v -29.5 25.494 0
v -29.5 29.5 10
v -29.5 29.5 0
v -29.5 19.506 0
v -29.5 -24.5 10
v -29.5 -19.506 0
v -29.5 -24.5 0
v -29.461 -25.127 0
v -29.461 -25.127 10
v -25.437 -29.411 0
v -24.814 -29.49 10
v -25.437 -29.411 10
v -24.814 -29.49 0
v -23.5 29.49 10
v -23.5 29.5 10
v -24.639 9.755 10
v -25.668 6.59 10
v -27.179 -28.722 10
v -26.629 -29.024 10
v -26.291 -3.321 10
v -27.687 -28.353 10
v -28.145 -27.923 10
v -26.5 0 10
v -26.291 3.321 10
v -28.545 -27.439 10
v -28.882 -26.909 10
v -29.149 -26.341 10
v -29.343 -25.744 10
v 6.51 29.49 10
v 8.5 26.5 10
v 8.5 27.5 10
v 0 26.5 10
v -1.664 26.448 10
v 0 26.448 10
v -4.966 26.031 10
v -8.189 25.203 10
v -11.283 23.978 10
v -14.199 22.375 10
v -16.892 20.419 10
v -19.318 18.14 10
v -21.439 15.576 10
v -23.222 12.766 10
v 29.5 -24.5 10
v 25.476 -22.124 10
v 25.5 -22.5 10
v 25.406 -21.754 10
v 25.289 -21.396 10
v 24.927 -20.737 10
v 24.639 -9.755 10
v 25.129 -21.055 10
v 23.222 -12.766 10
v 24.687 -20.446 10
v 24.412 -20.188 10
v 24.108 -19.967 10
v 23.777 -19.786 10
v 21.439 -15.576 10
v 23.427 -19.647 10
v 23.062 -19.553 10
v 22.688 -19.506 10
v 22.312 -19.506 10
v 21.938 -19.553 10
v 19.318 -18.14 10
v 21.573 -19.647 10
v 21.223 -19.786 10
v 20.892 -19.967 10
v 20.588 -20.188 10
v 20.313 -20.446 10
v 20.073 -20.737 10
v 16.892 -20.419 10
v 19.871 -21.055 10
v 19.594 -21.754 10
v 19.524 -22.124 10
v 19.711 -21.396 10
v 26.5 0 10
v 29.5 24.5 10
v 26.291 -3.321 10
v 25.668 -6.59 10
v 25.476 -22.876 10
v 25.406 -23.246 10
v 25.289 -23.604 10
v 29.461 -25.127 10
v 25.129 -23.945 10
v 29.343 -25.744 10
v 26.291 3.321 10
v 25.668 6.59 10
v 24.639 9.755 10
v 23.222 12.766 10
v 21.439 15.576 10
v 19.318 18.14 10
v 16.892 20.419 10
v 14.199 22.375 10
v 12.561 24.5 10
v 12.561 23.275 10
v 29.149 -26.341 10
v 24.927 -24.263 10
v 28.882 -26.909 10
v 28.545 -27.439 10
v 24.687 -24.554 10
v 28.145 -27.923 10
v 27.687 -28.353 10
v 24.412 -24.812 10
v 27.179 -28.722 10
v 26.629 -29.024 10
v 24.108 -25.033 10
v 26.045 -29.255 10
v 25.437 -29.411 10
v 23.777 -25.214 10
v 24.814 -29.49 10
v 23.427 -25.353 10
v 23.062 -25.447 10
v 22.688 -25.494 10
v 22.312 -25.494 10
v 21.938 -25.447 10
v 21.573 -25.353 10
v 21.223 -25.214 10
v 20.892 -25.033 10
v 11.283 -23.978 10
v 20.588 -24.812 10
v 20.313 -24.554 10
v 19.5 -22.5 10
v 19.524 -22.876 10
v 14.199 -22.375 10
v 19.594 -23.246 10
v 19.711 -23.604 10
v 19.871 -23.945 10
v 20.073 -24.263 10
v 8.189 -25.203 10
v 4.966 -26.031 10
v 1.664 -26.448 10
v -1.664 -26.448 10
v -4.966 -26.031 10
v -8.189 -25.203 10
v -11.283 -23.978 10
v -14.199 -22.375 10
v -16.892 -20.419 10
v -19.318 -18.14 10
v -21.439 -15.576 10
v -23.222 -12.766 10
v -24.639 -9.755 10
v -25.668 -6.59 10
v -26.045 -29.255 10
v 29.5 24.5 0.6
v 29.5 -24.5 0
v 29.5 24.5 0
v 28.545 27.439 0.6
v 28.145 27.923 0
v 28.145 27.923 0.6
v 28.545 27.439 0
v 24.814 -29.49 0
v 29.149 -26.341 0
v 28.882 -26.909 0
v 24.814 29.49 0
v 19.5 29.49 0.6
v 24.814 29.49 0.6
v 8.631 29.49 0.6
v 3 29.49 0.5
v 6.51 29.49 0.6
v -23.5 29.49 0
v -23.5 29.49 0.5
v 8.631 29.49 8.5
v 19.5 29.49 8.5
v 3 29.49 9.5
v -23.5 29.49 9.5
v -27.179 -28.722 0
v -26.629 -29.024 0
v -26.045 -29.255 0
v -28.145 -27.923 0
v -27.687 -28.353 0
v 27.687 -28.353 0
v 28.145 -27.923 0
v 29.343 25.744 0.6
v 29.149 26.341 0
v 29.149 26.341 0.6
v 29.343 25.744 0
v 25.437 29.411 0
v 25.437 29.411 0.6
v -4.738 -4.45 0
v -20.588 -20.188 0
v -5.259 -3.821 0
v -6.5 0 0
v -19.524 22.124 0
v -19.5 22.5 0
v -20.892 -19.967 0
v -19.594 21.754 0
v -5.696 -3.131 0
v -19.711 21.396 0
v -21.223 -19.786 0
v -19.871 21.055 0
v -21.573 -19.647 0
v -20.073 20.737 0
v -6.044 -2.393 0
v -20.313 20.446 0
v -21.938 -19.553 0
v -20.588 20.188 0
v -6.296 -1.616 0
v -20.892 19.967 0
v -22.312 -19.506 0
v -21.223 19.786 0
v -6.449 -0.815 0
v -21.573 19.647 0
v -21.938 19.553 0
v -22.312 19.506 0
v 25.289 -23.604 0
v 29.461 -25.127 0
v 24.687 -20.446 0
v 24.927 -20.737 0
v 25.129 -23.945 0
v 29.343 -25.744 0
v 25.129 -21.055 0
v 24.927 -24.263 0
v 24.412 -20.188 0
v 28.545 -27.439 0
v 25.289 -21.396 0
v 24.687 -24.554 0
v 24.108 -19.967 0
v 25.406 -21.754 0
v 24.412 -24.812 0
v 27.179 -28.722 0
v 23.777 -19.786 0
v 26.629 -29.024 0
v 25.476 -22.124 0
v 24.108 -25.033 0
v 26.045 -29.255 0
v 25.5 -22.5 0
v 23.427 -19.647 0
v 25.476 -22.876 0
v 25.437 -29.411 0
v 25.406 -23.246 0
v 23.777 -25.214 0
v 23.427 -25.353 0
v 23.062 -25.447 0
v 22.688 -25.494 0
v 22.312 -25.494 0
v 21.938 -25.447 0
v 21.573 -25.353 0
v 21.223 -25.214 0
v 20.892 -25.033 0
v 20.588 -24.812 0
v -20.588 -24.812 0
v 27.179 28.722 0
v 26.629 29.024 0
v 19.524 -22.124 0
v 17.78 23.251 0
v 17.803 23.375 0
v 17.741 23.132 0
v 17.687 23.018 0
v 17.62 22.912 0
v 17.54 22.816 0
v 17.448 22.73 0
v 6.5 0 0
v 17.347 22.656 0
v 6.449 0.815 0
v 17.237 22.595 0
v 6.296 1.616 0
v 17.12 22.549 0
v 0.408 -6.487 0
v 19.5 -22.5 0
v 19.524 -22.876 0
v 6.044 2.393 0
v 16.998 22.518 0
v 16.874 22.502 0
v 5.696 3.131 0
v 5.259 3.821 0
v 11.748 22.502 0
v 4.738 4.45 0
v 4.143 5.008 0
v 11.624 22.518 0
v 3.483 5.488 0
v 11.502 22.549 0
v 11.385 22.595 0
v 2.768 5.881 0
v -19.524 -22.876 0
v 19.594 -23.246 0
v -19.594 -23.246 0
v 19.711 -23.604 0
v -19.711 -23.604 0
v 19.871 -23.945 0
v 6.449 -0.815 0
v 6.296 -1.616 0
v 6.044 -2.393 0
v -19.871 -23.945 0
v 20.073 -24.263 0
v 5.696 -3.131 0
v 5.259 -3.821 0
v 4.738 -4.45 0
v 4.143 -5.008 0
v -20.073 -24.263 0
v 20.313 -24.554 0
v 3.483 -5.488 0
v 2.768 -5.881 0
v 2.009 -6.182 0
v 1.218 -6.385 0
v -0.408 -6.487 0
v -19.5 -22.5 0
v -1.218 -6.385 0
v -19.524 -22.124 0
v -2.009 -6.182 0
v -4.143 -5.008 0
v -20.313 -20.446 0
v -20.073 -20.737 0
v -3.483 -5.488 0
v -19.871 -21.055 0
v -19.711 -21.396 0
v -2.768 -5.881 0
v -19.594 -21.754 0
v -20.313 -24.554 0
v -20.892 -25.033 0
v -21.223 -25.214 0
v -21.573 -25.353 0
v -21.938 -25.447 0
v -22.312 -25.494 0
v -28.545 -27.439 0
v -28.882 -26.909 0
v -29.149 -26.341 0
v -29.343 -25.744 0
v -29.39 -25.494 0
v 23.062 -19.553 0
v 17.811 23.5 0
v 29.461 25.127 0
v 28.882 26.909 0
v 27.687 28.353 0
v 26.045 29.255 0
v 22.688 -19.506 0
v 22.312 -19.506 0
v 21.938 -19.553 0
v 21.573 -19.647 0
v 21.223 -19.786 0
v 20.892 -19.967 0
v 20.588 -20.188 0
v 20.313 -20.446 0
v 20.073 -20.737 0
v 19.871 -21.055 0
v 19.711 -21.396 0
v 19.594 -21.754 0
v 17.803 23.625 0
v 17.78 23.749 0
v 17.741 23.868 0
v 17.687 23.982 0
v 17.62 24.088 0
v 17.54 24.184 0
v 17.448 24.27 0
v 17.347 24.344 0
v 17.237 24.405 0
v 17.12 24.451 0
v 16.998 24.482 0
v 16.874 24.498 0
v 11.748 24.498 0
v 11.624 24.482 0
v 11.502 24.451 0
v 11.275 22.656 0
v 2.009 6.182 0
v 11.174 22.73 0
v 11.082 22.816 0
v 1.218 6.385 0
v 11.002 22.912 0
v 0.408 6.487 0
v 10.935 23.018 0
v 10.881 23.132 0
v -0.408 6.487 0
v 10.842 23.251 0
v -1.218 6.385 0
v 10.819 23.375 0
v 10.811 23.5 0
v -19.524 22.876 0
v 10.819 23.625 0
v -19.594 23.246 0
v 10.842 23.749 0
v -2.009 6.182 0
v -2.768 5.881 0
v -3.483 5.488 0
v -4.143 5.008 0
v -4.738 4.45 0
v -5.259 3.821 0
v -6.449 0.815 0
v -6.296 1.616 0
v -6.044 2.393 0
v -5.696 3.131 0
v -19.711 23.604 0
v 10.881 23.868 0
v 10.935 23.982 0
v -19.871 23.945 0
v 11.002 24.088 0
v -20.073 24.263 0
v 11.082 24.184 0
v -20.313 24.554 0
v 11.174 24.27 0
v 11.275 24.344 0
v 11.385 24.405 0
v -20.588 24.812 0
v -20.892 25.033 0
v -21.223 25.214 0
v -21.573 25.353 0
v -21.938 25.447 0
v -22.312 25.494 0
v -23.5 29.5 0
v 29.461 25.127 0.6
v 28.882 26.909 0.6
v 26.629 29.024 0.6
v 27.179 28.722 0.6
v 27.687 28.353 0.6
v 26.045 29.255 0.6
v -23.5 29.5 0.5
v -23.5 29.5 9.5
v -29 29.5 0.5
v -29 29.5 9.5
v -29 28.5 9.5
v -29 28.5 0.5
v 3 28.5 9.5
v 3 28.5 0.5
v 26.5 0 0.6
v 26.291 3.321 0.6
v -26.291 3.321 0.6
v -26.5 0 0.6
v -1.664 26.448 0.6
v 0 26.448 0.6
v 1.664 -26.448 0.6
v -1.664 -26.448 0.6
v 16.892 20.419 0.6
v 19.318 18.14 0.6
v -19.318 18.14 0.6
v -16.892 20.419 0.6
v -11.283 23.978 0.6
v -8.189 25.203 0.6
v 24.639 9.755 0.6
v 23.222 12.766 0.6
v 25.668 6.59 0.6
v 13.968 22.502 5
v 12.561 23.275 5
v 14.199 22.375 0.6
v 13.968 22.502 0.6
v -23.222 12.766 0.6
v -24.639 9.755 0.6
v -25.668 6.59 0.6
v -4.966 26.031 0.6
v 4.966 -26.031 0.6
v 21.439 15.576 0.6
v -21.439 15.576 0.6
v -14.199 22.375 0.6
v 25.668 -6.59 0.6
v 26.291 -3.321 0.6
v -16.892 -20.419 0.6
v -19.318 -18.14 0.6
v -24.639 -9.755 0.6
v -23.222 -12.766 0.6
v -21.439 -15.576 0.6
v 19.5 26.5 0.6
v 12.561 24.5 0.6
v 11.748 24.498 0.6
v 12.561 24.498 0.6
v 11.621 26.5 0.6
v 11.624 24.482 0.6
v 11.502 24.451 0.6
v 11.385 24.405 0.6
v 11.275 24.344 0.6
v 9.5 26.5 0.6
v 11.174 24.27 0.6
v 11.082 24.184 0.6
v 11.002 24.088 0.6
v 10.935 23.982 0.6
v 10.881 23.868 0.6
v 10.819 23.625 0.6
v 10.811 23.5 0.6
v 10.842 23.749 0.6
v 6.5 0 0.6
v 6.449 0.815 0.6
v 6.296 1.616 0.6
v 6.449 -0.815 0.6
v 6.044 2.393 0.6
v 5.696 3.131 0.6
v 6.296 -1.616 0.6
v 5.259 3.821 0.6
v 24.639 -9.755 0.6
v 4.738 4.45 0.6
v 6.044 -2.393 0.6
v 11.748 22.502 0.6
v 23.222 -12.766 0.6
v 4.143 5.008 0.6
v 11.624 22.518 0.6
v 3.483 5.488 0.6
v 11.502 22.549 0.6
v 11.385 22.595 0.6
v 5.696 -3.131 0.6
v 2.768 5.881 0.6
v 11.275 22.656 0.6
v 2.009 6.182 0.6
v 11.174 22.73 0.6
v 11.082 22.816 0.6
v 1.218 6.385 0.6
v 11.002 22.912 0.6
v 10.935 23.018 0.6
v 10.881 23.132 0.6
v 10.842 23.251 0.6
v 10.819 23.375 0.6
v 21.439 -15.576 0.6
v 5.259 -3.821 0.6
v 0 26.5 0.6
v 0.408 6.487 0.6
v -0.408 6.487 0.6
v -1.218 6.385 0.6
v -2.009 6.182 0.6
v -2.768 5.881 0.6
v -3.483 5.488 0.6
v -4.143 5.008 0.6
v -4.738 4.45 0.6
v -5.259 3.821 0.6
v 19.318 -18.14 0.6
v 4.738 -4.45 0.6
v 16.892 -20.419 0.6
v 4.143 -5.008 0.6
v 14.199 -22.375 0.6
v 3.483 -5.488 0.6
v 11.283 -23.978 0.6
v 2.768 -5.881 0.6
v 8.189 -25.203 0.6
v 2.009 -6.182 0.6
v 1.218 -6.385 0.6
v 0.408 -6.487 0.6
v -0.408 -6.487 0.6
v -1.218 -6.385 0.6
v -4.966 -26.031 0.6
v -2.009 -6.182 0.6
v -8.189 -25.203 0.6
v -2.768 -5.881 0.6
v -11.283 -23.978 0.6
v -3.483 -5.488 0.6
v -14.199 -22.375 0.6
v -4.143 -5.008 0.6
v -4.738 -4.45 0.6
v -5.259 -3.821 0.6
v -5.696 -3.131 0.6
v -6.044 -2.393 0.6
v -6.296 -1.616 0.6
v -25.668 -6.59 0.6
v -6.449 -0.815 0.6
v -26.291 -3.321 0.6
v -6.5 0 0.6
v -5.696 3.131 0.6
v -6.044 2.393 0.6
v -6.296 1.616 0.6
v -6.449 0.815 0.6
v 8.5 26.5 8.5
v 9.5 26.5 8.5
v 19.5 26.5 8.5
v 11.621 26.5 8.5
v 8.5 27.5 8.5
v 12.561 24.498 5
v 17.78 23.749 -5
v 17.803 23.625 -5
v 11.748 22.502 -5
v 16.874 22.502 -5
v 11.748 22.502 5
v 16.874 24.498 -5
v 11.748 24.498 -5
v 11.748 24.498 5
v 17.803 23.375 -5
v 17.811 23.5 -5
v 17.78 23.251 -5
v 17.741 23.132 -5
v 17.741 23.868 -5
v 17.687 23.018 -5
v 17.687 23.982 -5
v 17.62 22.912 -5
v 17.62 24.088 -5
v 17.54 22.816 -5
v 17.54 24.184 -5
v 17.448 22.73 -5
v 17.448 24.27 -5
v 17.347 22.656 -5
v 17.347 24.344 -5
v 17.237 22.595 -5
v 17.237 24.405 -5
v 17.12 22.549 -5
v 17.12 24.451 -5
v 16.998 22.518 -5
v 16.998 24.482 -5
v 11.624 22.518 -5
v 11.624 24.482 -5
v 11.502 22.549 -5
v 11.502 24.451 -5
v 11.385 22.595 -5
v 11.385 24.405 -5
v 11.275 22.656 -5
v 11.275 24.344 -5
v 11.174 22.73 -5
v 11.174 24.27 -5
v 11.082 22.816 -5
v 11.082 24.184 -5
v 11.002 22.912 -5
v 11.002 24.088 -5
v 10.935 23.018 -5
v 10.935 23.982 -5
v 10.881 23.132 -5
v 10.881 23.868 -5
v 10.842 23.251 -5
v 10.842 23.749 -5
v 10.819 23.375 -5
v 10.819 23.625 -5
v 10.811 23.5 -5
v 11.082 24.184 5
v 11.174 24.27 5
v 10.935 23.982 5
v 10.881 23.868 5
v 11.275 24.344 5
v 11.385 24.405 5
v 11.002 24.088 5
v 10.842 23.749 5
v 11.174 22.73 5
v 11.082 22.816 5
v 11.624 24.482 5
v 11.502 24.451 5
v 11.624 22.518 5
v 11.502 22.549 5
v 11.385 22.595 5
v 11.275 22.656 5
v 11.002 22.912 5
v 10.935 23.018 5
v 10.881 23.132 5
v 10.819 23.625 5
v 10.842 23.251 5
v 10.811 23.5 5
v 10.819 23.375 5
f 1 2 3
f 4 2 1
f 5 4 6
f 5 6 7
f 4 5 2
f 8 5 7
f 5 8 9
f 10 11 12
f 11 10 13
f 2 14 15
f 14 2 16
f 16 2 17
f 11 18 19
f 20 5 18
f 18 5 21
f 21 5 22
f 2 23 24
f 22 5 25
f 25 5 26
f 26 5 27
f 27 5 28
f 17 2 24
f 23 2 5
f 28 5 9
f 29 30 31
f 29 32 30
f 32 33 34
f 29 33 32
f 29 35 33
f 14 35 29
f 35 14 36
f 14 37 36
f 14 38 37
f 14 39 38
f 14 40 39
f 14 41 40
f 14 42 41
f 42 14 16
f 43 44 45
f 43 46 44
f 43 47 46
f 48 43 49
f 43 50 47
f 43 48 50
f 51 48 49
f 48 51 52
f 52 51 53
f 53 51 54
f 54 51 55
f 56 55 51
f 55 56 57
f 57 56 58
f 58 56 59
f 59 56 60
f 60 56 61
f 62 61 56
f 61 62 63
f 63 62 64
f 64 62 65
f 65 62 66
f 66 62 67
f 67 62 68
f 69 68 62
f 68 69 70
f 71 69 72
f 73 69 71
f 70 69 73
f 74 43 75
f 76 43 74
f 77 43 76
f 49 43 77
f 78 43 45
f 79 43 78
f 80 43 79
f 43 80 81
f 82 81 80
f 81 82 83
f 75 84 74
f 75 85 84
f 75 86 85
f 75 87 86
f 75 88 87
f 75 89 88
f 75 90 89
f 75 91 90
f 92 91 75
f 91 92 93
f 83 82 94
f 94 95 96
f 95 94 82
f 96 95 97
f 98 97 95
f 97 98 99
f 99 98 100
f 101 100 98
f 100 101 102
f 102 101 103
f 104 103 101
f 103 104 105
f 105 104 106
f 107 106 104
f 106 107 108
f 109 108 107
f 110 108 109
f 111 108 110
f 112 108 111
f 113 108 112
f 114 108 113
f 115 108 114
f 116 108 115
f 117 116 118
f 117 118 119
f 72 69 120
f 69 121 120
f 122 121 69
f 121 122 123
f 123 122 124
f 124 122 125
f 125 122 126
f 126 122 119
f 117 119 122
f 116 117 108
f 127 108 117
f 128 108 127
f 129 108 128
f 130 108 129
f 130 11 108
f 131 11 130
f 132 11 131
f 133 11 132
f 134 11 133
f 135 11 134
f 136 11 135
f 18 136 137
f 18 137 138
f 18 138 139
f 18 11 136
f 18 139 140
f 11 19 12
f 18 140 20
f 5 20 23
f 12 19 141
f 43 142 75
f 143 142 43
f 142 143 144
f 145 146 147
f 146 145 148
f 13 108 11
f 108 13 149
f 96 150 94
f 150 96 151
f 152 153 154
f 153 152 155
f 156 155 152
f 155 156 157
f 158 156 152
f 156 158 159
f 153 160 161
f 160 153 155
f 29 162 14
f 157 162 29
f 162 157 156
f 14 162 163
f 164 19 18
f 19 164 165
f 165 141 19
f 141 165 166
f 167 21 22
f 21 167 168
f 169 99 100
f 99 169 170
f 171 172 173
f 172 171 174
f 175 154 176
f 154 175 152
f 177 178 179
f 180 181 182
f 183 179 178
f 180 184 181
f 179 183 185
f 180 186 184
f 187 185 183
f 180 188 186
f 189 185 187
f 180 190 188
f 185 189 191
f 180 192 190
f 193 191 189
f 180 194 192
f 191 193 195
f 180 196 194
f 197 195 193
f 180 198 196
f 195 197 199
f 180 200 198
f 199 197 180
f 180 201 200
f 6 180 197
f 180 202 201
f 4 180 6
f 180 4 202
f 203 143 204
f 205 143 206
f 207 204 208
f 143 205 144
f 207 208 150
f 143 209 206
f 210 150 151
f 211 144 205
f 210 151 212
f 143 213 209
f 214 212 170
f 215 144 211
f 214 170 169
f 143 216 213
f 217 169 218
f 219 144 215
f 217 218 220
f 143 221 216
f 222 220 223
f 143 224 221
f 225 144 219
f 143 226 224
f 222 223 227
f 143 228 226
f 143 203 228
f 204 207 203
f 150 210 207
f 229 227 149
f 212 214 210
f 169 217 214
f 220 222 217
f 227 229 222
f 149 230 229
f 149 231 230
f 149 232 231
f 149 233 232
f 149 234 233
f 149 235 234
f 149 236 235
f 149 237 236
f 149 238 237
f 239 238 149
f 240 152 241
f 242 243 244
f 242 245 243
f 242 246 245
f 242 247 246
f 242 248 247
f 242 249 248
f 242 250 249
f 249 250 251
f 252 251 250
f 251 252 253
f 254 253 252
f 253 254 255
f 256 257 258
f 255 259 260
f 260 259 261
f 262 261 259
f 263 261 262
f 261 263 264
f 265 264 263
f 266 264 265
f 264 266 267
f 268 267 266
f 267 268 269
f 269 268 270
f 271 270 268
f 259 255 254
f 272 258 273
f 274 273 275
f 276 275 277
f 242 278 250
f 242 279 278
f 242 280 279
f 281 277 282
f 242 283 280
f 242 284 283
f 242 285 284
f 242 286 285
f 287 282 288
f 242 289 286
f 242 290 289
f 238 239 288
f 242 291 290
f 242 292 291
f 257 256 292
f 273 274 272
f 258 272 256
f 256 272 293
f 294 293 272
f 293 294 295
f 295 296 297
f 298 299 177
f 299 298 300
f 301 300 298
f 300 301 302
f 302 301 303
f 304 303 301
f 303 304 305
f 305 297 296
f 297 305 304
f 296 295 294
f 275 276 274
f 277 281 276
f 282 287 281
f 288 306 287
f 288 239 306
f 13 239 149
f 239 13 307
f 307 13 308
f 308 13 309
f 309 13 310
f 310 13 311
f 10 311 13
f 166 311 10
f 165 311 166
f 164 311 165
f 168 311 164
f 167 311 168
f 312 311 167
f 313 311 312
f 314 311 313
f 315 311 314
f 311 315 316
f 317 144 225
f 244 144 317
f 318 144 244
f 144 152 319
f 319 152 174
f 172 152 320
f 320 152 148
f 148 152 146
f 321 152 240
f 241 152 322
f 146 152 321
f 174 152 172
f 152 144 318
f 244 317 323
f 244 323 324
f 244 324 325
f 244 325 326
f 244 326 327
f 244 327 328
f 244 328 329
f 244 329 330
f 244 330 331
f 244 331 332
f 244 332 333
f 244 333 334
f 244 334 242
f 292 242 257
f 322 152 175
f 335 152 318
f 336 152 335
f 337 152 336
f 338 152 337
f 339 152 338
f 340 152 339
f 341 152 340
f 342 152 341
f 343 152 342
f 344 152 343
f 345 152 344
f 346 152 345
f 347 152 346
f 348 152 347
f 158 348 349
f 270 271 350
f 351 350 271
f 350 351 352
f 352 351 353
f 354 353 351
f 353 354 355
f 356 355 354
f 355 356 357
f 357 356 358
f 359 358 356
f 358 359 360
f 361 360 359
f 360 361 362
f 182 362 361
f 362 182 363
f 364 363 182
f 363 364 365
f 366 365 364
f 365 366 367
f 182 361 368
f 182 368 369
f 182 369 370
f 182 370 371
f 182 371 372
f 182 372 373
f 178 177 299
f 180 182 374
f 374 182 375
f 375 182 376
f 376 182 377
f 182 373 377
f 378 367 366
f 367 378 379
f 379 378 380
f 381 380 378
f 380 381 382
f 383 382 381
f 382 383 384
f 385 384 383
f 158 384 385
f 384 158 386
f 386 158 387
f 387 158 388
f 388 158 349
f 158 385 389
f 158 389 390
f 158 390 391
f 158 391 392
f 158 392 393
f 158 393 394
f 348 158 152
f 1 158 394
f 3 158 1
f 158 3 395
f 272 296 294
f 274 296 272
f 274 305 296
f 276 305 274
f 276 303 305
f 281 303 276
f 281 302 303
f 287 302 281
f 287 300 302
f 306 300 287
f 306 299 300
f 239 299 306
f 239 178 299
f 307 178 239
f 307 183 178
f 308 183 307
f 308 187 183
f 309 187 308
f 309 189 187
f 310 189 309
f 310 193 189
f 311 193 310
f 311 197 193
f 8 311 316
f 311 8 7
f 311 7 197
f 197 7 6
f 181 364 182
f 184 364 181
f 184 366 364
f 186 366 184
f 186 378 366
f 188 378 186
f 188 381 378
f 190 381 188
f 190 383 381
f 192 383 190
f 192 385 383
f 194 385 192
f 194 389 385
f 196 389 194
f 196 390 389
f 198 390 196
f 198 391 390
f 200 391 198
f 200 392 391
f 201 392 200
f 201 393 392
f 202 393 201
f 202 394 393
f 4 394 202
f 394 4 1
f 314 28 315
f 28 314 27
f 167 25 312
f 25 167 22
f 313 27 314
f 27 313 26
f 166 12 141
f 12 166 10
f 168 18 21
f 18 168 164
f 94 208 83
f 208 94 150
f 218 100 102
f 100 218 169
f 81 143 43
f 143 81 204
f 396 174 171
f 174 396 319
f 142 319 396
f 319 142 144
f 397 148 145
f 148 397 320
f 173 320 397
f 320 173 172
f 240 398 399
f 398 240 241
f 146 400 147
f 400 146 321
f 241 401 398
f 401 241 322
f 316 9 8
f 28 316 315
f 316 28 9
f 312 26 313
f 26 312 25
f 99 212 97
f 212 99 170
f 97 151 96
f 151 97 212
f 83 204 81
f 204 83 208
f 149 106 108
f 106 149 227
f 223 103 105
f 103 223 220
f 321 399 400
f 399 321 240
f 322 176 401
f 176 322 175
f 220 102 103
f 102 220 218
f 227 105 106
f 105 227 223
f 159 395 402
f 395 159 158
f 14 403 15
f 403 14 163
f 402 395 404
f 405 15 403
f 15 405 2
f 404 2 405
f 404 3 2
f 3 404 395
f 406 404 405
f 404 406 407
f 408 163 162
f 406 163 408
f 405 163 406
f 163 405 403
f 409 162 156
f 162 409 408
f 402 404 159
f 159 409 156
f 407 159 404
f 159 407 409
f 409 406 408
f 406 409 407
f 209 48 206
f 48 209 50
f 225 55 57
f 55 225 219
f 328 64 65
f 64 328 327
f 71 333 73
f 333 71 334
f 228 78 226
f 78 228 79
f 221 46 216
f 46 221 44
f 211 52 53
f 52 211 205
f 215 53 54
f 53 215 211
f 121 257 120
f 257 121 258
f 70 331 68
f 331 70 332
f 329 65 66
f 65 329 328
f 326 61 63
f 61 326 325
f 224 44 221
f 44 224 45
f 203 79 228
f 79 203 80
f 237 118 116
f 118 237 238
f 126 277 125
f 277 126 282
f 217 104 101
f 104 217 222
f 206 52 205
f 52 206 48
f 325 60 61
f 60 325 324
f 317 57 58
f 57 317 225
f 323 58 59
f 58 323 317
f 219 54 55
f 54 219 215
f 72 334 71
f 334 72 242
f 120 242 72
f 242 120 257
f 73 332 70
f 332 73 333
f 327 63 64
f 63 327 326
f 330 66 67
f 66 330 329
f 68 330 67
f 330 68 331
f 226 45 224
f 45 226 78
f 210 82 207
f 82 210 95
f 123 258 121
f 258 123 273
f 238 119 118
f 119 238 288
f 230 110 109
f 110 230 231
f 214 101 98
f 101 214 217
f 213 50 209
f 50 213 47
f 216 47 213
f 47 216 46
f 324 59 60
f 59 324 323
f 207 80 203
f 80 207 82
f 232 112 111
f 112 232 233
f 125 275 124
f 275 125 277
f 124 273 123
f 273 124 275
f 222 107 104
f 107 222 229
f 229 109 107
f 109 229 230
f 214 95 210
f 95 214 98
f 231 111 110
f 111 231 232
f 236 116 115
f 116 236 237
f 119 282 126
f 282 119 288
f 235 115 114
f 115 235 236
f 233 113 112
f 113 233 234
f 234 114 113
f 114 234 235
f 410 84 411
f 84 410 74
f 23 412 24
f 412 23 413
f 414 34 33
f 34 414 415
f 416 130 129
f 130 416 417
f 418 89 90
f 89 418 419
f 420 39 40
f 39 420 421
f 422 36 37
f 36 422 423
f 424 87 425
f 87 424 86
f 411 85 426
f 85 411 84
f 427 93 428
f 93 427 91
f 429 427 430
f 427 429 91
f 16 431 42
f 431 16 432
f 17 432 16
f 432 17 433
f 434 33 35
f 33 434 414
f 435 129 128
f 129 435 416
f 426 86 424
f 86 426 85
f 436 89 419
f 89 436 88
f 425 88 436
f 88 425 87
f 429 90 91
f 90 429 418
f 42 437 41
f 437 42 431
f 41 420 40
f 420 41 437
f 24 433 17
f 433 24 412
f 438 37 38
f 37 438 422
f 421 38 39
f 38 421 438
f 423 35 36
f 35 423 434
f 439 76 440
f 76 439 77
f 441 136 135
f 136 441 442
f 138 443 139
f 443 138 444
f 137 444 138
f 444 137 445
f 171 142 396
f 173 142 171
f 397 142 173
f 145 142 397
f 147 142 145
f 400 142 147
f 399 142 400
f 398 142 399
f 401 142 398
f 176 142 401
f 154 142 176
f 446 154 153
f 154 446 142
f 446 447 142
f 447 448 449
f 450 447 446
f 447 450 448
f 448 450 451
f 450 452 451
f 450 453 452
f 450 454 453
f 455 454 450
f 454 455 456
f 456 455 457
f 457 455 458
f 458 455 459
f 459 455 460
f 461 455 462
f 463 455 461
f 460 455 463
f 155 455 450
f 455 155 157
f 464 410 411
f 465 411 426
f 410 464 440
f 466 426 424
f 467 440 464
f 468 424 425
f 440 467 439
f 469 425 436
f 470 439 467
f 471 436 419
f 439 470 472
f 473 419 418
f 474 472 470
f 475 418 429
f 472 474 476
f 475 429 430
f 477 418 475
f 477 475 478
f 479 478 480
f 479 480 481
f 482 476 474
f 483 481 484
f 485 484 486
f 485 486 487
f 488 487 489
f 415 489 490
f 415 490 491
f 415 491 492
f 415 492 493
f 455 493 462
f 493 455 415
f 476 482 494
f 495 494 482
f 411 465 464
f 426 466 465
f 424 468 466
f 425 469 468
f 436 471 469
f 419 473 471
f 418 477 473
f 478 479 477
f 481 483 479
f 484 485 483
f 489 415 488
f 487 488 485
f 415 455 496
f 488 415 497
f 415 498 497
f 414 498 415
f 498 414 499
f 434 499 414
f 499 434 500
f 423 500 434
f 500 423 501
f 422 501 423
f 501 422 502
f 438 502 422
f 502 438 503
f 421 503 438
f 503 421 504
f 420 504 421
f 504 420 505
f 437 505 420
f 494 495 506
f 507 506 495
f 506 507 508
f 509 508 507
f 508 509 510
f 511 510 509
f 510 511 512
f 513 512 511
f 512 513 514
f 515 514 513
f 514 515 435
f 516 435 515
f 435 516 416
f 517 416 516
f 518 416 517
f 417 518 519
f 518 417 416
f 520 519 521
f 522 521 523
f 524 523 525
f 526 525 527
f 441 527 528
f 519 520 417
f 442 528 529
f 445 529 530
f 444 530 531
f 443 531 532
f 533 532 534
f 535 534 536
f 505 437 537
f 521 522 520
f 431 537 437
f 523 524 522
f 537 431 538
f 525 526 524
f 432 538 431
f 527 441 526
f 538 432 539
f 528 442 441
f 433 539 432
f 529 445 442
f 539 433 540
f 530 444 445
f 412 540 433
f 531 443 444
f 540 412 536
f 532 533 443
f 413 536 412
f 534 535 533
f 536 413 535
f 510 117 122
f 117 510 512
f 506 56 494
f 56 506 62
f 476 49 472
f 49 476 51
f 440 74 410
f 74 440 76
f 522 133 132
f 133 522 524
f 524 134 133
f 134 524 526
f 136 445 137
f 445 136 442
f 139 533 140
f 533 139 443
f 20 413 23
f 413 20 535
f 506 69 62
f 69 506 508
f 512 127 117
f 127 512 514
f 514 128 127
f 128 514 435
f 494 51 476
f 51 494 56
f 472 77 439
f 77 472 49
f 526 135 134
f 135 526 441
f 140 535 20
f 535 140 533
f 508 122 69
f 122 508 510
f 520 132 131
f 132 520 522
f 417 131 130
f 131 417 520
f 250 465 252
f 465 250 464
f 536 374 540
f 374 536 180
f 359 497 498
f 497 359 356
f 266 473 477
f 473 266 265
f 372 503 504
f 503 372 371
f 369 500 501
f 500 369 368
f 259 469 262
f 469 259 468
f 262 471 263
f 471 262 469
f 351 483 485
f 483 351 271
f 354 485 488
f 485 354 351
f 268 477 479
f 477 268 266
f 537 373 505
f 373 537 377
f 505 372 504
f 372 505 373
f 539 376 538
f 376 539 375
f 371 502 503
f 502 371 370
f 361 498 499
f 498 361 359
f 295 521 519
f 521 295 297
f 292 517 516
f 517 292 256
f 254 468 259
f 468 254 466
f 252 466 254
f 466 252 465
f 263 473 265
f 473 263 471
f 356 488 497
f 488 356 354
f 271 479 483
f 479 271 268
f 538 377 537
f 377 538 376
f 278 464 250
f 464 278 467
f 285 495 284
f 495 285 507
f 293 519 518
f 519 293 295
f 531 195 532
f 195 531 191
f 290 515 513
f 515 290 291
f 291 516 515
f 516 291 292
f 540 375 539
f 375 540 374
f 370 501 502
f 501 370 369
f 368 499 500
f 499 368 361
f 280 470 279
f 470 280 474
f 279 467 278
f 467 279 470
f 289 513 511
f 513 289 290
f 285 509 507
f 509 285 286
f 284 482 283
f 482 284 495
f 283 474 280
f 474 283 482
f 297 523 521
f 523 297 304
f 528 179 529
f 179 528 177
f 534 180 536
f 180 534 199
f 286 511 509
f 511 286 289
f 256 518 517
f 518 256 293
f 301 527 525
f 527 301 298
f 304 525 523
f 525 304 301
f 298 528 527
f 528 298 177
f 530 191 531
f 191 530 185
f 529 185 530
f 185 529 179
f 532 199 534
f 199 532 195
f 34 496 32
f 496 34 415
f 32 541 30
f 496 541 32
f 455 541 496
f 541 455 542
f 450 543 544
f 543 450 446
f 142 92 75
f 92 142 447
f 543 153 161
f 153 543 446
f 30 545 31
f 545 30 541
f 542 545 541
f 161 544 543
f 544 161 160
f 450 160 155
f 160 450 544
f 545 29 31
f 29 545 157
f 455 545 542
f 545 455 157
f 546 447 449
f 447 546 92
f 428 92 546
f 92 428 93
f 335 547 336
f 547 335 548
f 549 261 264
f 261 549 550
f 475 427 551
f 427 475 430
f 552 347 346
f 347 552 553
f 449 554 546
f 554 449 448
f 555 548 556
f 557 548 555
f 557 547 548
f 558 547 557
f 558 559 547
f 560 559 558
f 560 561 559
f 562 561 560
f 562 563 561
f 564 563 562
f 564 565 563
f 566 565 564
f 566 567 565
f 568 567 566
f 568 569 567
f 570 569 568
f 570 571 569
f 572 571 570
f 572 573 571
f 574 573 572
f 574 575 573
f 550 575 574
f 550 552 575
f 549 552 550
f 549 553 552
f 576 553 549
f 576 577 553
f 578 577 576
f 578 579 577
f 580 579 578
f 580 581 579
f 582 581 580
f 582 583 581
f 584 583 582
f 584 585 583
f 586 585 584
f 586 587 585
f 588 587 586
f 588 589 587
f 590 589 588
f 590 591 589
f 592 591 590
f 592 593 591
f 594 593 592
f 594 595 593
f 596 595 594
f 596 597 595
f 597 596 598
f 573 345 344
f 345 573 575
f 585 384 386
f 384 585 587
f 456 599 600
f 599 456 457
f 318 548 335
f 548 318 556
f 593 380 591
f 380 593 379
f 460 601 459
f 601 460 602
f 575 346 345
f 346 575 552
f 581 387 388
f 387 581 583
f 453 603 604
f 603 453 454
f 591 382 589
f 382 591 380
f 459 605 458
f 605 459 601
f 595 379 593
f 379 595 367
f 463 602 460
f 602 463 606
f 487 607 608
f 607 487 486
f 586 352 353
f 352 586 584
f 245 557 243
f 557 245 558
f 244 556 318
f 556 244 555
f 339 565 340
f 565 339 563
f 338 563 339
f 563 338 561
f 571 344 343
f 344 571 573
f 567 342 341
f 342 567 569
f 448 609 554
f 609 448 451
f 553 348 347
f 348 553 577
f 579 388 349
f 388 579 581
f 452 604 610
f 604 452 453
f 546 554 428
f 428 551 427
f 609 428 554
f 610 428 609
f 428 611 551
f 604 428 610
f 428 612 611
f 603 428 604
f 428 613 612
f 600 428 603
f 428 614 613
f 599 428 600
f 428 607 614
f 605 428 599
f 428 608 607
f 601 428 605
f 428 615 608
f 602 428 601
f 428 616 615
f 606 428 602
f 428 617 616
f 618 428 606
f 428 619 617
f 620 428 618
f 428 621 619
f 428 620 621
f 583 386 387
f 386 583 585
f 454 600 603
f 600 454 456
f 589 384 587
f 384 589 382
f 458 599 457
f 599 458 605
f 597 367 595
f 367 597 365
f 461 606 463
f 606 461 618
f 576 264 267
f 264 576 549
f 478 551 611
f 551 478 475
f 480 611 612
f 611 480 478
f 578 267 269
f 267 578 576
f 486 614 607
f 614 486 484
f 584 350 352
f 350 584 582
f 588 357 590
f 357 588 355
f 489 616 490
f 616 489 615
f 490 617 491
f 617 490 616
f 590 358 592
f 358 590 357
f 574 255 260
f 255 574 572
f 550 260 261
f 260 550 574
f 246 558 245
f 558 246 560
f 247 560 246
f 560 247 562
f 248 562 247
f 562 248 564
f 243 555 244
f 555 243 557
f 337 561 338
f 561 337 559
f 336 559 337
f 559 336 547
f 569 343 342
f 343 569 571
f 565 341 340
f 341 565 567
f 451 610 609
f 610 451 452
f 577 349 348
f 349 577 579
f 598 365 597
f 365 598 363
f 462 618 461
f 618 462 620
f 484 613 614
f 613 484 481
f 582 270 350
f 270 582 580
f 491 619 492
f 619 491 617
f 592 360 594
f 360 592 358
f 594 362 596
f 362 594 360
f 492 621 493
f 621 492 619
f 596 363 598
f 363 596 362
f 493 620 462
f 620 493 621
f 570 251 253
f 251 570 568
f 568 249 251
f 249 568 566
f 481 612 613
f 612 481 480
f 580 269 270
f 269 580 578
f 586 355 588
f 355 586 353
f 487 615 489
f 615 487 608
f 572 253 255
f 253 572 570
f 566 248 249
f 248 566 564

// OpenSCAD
$fn = 50;


union() {
	difference() {
		union() {
			hull() {
				translate(v = [-24.5000000000, 24.5000000000, 0]) {
					cylinder(h = 10, r = 5);
				}
				translate(v = [24.5000000000, 24.5000000000, 0]) {
					cylinder(h = 10, r = 5);
				}
				translate(v = [-24.5000000000, -24.5000000000, 0]) {
					cylinder(h = 10, r = 5);
				}
				translate(v = [24.5000000000, -24.5000000000, 0]) {
					cylinder(h = 10, r = 5);
				}
			}
			translate(v = [-29.5000000000, 23.5000000000, 0]) {
				cube(size = [6, 6, 10]);
			}
		}
		union() {
			translate(v = [-30.0000000000, -22.5000000000, -250.0000000000]) {
				rotate(a = [0, 0, 0]) {
					difference() {
						union() {
							hull() {
								translate(v = [7.5000000000, 0, 0]) {
									cylinder(h = 250, r = 3.0000000000, r1 = 3.0000000000, r2 = 3.0000000000);
								}
								translate(v = [-7.5000000000, 0, 0]) {
									cylinder(h = 250, r = 3.0000000000, r1 = 3.0000000000, r2 = 3.0000000000);
								}
							}
						}
						union();
					}
				}
			}
			translate(v = [-30.0000000000, 22.5000000000, -250.0000000000]) {
				rotate(a = [0, 0, 0]) {
					difference() {
						union() {
							hull() {
								translate(v = [7.5000000000, 0, 0]) {
									cylinder(h = 250, r = 3.0000000000, r1 = 3.0000000000, r2 = 3.0000000000);
								}
								translate(v = [-7.5000000000, 0, 0]) {
									cylinder(h = 250, r = 3.0000000000, r1 = 3.0000000000, r2 = 3.0000000000);
								}
							}
						}
						union();
					}
				}
			}
			translate(v = [-29.0000000000, 28.5000000000, 0.5000000000]) {
				cube(size = [32, 1, 9.0000000000]);
			}
			translate(v = [22.5000000000, -22.5000000000, 0]) {
				cylinder(h = 100, r = 3.0000000000);
			}
			translate(v = [0, 0, 0.6000000000]) {
				cylinder(h = 12.4000000000, r = 26.5000000000);
			}
			translate(v = [0, 0, -5.0000000000]) {
				cylinder(h = 10, r = 6.5000000000);
			}
			translate(v = [0.0000000000, 24.5000000000, 0.6000000000]) {
				cube(size = [29.5000000000, 2, 12.4000000000]);
			}
			translate(v = [19.5000000000, 24.5000000000, 0.6000000000]) {
				cube(size = [10, 5, 12.4000000000]);
			}
			translate(v = [8.5000000000, 24.5000000000, 8.5000000000]) {
				cube(size = [21, 5, 1.5000000000]);
			}
			translate(v = [5.7500000000, 30.2500000000, 0.6000000000]) {
				rotate(a = [0, 0, -45]) {
					cube(size = [7.5000000000, 1.5000000000, 12.4000000000]);
				}
			}
			translate(v = [5.0610000000, 22.5000000000, 0.6000000000]) {
				cube(size = [7.5000000000, 2, 9.4000000000]);
			}
		}
	}
	union() {
		translate(v = [14.3110000000, 23.5000000000, -5.0000000000]) {
			rotate(a = [0, 0, 0]) {
				difference() {
					union() {
						#hull() {
							#translate(v = [2.5000000000, 0, 0]) {
								cylinder(h = 10, r = 1.0000000000, r1 = 1.0000000000, r2 = 1.0000000000);
							}
							#translate(v = [-2.5000000000, 0, 0]) {
								cylinder(h = 10, r = 1.0000000000, r1 = 1.0000000000, r2 = 1.0000000000);
							}
						}
					}
					union();
				}
			}
		}
	}
}
